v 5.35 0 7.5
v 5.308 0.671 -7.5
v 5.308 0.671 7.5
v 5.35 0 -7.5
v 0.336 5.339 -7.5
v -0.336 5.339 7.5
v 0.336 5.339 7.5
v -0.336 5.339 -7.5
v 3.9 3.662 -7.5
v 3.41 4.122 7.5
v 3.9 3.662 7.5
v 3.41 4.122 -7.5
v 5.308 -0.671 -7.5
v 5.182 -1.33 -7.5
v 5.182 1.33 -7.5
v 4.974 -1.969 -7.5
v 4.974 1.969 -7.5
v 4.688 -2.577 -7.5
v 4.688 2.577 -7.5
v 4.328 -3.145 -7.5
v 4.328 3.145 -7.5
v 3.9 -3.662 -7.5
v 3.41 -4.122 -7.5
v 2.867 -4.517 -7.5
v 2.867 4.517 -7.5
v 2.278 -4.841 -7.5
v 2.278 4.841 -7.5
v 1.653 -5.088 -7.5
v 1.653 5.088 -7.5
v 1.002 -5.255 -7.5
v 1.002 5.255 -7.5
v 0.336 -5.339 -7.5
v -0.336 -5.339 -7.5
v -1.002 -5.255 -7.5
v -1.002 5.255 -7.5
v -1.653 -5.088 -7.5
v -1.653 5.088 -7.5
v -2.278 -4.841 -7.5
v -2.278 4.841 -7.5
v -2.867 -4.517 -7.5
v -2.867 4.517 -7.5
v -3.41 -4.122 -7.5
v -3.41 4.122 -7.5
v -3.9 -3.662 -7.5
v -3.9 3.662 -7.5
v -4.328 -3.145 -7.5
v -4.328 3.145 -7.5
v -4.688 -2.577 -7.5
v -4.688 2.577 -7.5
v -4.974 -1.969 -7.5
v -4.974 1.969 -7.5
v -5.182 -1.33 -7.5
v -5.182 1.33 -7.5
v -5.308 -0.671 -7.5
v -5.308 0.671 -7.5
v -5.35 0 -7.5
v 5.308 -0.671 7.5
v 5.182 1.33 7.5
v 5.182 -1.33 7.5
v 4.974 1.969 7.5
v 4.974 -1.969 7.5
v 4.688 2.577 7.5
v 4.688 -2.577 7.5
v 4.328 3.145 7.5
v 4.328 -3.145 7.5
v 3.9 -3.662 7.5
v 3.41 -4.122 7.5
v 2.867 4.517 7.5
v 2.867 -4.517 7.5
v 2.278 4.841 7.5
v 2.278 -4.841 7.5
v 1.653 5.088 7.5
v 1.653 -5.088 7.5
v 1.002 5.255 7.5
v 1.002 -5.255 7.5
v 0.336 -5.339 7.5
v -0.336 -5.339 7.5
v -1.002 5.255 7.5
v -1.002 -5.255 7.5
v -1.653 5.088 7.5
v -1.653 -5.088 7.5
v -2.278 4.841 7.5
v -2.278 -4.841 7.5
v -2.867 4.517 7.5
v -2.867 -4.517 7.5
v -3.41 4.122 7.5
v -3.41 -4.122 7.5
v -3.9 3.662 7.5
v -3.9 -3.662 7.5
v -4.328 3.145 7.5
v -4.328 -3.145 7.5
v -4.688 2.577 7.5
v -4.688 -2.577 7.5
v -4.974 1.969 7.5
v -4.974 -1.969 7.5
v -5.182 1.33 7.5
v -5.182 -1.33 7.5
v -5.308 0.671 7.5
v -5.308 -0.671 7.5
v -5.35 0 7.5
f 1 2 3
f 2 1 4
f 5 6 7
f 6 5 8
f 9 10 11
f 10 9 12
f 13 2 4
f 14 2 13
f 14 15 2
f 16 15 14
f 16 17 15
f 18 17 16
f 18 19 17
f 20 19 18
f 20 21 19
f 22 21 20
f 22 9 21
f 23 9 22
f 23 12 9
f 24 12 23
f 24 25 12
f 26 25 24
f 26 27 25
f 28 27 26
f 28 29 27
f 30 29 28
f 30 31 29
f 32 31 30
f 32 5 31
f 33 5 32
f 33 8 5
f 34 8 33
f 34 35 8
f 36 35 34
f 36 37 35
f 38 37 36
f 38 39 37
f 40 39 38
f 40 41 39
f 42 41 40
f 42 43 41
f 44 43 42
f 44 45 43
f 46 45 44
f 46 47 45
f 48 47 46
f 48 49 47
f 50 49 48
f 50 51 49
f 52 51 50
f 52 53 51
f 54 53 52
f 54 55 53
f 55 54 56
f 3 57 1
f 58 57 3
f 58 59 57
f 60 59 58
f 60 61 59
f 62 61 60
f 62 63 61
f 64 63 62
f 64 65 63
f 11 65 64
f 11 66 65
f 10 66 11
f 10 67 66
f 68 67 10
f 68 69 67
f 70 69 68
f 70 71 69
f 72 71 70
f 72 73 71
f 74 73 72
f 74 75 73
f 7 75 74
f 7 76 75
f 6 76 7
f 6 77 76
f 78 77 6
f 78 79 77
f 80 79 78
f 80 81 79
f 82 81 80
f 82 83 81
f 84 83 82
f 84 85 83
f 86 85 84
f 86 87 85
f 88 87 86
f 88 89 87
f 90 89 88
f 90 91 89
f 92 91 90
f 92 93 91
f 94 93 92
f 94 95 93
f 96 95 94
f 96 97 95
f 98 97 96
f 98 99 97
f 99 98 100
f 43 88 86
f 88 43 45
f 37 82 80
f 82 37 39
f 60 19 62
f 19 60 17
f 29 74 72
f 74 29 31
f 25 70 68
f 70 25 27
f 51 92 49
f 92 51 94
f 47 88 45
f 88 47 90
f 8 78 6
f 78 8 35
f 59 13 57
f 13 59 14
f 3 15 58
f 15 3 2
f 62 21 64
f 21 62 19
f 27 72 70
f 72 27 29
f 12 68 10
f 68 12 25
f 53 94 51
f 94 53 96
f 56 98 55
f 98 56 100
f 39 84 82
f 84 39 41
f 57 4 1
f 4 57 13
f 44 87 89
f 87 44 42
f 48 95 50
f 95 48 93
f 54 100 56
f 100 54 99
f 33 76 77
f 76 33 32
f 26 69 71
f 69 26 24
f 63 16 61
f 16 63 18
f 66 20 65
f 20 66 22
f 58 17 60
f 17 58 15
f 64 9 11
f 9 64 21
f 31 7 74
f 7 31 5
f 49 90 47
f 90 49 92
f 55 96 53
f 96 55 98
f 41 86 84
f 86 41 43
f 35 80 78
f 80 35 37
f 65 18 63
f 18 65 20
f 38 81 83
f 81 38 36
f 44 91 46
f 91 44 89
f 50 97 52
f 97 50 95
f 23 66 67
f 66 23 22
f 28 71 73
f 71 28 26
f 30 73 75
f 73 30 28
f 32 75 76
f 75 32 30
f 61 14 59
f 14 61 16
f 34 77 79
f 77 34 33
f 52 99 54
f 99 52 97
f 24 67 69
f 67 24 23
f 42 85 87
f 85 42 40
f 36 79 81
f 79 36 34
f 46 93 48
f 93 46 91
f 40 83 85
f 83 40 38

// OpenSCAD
$fn = 50;


difference() {
	union() {
		translate(v = [0, 0, -7.5000000000]) {
			cylinder(h = 15, r = 5.3500000000);
		}
	}
	union() {
		translate(v = [0, 0, -100.0000000000]) {
			cylinder(h = 200, r = 0);
		}
	}
}
